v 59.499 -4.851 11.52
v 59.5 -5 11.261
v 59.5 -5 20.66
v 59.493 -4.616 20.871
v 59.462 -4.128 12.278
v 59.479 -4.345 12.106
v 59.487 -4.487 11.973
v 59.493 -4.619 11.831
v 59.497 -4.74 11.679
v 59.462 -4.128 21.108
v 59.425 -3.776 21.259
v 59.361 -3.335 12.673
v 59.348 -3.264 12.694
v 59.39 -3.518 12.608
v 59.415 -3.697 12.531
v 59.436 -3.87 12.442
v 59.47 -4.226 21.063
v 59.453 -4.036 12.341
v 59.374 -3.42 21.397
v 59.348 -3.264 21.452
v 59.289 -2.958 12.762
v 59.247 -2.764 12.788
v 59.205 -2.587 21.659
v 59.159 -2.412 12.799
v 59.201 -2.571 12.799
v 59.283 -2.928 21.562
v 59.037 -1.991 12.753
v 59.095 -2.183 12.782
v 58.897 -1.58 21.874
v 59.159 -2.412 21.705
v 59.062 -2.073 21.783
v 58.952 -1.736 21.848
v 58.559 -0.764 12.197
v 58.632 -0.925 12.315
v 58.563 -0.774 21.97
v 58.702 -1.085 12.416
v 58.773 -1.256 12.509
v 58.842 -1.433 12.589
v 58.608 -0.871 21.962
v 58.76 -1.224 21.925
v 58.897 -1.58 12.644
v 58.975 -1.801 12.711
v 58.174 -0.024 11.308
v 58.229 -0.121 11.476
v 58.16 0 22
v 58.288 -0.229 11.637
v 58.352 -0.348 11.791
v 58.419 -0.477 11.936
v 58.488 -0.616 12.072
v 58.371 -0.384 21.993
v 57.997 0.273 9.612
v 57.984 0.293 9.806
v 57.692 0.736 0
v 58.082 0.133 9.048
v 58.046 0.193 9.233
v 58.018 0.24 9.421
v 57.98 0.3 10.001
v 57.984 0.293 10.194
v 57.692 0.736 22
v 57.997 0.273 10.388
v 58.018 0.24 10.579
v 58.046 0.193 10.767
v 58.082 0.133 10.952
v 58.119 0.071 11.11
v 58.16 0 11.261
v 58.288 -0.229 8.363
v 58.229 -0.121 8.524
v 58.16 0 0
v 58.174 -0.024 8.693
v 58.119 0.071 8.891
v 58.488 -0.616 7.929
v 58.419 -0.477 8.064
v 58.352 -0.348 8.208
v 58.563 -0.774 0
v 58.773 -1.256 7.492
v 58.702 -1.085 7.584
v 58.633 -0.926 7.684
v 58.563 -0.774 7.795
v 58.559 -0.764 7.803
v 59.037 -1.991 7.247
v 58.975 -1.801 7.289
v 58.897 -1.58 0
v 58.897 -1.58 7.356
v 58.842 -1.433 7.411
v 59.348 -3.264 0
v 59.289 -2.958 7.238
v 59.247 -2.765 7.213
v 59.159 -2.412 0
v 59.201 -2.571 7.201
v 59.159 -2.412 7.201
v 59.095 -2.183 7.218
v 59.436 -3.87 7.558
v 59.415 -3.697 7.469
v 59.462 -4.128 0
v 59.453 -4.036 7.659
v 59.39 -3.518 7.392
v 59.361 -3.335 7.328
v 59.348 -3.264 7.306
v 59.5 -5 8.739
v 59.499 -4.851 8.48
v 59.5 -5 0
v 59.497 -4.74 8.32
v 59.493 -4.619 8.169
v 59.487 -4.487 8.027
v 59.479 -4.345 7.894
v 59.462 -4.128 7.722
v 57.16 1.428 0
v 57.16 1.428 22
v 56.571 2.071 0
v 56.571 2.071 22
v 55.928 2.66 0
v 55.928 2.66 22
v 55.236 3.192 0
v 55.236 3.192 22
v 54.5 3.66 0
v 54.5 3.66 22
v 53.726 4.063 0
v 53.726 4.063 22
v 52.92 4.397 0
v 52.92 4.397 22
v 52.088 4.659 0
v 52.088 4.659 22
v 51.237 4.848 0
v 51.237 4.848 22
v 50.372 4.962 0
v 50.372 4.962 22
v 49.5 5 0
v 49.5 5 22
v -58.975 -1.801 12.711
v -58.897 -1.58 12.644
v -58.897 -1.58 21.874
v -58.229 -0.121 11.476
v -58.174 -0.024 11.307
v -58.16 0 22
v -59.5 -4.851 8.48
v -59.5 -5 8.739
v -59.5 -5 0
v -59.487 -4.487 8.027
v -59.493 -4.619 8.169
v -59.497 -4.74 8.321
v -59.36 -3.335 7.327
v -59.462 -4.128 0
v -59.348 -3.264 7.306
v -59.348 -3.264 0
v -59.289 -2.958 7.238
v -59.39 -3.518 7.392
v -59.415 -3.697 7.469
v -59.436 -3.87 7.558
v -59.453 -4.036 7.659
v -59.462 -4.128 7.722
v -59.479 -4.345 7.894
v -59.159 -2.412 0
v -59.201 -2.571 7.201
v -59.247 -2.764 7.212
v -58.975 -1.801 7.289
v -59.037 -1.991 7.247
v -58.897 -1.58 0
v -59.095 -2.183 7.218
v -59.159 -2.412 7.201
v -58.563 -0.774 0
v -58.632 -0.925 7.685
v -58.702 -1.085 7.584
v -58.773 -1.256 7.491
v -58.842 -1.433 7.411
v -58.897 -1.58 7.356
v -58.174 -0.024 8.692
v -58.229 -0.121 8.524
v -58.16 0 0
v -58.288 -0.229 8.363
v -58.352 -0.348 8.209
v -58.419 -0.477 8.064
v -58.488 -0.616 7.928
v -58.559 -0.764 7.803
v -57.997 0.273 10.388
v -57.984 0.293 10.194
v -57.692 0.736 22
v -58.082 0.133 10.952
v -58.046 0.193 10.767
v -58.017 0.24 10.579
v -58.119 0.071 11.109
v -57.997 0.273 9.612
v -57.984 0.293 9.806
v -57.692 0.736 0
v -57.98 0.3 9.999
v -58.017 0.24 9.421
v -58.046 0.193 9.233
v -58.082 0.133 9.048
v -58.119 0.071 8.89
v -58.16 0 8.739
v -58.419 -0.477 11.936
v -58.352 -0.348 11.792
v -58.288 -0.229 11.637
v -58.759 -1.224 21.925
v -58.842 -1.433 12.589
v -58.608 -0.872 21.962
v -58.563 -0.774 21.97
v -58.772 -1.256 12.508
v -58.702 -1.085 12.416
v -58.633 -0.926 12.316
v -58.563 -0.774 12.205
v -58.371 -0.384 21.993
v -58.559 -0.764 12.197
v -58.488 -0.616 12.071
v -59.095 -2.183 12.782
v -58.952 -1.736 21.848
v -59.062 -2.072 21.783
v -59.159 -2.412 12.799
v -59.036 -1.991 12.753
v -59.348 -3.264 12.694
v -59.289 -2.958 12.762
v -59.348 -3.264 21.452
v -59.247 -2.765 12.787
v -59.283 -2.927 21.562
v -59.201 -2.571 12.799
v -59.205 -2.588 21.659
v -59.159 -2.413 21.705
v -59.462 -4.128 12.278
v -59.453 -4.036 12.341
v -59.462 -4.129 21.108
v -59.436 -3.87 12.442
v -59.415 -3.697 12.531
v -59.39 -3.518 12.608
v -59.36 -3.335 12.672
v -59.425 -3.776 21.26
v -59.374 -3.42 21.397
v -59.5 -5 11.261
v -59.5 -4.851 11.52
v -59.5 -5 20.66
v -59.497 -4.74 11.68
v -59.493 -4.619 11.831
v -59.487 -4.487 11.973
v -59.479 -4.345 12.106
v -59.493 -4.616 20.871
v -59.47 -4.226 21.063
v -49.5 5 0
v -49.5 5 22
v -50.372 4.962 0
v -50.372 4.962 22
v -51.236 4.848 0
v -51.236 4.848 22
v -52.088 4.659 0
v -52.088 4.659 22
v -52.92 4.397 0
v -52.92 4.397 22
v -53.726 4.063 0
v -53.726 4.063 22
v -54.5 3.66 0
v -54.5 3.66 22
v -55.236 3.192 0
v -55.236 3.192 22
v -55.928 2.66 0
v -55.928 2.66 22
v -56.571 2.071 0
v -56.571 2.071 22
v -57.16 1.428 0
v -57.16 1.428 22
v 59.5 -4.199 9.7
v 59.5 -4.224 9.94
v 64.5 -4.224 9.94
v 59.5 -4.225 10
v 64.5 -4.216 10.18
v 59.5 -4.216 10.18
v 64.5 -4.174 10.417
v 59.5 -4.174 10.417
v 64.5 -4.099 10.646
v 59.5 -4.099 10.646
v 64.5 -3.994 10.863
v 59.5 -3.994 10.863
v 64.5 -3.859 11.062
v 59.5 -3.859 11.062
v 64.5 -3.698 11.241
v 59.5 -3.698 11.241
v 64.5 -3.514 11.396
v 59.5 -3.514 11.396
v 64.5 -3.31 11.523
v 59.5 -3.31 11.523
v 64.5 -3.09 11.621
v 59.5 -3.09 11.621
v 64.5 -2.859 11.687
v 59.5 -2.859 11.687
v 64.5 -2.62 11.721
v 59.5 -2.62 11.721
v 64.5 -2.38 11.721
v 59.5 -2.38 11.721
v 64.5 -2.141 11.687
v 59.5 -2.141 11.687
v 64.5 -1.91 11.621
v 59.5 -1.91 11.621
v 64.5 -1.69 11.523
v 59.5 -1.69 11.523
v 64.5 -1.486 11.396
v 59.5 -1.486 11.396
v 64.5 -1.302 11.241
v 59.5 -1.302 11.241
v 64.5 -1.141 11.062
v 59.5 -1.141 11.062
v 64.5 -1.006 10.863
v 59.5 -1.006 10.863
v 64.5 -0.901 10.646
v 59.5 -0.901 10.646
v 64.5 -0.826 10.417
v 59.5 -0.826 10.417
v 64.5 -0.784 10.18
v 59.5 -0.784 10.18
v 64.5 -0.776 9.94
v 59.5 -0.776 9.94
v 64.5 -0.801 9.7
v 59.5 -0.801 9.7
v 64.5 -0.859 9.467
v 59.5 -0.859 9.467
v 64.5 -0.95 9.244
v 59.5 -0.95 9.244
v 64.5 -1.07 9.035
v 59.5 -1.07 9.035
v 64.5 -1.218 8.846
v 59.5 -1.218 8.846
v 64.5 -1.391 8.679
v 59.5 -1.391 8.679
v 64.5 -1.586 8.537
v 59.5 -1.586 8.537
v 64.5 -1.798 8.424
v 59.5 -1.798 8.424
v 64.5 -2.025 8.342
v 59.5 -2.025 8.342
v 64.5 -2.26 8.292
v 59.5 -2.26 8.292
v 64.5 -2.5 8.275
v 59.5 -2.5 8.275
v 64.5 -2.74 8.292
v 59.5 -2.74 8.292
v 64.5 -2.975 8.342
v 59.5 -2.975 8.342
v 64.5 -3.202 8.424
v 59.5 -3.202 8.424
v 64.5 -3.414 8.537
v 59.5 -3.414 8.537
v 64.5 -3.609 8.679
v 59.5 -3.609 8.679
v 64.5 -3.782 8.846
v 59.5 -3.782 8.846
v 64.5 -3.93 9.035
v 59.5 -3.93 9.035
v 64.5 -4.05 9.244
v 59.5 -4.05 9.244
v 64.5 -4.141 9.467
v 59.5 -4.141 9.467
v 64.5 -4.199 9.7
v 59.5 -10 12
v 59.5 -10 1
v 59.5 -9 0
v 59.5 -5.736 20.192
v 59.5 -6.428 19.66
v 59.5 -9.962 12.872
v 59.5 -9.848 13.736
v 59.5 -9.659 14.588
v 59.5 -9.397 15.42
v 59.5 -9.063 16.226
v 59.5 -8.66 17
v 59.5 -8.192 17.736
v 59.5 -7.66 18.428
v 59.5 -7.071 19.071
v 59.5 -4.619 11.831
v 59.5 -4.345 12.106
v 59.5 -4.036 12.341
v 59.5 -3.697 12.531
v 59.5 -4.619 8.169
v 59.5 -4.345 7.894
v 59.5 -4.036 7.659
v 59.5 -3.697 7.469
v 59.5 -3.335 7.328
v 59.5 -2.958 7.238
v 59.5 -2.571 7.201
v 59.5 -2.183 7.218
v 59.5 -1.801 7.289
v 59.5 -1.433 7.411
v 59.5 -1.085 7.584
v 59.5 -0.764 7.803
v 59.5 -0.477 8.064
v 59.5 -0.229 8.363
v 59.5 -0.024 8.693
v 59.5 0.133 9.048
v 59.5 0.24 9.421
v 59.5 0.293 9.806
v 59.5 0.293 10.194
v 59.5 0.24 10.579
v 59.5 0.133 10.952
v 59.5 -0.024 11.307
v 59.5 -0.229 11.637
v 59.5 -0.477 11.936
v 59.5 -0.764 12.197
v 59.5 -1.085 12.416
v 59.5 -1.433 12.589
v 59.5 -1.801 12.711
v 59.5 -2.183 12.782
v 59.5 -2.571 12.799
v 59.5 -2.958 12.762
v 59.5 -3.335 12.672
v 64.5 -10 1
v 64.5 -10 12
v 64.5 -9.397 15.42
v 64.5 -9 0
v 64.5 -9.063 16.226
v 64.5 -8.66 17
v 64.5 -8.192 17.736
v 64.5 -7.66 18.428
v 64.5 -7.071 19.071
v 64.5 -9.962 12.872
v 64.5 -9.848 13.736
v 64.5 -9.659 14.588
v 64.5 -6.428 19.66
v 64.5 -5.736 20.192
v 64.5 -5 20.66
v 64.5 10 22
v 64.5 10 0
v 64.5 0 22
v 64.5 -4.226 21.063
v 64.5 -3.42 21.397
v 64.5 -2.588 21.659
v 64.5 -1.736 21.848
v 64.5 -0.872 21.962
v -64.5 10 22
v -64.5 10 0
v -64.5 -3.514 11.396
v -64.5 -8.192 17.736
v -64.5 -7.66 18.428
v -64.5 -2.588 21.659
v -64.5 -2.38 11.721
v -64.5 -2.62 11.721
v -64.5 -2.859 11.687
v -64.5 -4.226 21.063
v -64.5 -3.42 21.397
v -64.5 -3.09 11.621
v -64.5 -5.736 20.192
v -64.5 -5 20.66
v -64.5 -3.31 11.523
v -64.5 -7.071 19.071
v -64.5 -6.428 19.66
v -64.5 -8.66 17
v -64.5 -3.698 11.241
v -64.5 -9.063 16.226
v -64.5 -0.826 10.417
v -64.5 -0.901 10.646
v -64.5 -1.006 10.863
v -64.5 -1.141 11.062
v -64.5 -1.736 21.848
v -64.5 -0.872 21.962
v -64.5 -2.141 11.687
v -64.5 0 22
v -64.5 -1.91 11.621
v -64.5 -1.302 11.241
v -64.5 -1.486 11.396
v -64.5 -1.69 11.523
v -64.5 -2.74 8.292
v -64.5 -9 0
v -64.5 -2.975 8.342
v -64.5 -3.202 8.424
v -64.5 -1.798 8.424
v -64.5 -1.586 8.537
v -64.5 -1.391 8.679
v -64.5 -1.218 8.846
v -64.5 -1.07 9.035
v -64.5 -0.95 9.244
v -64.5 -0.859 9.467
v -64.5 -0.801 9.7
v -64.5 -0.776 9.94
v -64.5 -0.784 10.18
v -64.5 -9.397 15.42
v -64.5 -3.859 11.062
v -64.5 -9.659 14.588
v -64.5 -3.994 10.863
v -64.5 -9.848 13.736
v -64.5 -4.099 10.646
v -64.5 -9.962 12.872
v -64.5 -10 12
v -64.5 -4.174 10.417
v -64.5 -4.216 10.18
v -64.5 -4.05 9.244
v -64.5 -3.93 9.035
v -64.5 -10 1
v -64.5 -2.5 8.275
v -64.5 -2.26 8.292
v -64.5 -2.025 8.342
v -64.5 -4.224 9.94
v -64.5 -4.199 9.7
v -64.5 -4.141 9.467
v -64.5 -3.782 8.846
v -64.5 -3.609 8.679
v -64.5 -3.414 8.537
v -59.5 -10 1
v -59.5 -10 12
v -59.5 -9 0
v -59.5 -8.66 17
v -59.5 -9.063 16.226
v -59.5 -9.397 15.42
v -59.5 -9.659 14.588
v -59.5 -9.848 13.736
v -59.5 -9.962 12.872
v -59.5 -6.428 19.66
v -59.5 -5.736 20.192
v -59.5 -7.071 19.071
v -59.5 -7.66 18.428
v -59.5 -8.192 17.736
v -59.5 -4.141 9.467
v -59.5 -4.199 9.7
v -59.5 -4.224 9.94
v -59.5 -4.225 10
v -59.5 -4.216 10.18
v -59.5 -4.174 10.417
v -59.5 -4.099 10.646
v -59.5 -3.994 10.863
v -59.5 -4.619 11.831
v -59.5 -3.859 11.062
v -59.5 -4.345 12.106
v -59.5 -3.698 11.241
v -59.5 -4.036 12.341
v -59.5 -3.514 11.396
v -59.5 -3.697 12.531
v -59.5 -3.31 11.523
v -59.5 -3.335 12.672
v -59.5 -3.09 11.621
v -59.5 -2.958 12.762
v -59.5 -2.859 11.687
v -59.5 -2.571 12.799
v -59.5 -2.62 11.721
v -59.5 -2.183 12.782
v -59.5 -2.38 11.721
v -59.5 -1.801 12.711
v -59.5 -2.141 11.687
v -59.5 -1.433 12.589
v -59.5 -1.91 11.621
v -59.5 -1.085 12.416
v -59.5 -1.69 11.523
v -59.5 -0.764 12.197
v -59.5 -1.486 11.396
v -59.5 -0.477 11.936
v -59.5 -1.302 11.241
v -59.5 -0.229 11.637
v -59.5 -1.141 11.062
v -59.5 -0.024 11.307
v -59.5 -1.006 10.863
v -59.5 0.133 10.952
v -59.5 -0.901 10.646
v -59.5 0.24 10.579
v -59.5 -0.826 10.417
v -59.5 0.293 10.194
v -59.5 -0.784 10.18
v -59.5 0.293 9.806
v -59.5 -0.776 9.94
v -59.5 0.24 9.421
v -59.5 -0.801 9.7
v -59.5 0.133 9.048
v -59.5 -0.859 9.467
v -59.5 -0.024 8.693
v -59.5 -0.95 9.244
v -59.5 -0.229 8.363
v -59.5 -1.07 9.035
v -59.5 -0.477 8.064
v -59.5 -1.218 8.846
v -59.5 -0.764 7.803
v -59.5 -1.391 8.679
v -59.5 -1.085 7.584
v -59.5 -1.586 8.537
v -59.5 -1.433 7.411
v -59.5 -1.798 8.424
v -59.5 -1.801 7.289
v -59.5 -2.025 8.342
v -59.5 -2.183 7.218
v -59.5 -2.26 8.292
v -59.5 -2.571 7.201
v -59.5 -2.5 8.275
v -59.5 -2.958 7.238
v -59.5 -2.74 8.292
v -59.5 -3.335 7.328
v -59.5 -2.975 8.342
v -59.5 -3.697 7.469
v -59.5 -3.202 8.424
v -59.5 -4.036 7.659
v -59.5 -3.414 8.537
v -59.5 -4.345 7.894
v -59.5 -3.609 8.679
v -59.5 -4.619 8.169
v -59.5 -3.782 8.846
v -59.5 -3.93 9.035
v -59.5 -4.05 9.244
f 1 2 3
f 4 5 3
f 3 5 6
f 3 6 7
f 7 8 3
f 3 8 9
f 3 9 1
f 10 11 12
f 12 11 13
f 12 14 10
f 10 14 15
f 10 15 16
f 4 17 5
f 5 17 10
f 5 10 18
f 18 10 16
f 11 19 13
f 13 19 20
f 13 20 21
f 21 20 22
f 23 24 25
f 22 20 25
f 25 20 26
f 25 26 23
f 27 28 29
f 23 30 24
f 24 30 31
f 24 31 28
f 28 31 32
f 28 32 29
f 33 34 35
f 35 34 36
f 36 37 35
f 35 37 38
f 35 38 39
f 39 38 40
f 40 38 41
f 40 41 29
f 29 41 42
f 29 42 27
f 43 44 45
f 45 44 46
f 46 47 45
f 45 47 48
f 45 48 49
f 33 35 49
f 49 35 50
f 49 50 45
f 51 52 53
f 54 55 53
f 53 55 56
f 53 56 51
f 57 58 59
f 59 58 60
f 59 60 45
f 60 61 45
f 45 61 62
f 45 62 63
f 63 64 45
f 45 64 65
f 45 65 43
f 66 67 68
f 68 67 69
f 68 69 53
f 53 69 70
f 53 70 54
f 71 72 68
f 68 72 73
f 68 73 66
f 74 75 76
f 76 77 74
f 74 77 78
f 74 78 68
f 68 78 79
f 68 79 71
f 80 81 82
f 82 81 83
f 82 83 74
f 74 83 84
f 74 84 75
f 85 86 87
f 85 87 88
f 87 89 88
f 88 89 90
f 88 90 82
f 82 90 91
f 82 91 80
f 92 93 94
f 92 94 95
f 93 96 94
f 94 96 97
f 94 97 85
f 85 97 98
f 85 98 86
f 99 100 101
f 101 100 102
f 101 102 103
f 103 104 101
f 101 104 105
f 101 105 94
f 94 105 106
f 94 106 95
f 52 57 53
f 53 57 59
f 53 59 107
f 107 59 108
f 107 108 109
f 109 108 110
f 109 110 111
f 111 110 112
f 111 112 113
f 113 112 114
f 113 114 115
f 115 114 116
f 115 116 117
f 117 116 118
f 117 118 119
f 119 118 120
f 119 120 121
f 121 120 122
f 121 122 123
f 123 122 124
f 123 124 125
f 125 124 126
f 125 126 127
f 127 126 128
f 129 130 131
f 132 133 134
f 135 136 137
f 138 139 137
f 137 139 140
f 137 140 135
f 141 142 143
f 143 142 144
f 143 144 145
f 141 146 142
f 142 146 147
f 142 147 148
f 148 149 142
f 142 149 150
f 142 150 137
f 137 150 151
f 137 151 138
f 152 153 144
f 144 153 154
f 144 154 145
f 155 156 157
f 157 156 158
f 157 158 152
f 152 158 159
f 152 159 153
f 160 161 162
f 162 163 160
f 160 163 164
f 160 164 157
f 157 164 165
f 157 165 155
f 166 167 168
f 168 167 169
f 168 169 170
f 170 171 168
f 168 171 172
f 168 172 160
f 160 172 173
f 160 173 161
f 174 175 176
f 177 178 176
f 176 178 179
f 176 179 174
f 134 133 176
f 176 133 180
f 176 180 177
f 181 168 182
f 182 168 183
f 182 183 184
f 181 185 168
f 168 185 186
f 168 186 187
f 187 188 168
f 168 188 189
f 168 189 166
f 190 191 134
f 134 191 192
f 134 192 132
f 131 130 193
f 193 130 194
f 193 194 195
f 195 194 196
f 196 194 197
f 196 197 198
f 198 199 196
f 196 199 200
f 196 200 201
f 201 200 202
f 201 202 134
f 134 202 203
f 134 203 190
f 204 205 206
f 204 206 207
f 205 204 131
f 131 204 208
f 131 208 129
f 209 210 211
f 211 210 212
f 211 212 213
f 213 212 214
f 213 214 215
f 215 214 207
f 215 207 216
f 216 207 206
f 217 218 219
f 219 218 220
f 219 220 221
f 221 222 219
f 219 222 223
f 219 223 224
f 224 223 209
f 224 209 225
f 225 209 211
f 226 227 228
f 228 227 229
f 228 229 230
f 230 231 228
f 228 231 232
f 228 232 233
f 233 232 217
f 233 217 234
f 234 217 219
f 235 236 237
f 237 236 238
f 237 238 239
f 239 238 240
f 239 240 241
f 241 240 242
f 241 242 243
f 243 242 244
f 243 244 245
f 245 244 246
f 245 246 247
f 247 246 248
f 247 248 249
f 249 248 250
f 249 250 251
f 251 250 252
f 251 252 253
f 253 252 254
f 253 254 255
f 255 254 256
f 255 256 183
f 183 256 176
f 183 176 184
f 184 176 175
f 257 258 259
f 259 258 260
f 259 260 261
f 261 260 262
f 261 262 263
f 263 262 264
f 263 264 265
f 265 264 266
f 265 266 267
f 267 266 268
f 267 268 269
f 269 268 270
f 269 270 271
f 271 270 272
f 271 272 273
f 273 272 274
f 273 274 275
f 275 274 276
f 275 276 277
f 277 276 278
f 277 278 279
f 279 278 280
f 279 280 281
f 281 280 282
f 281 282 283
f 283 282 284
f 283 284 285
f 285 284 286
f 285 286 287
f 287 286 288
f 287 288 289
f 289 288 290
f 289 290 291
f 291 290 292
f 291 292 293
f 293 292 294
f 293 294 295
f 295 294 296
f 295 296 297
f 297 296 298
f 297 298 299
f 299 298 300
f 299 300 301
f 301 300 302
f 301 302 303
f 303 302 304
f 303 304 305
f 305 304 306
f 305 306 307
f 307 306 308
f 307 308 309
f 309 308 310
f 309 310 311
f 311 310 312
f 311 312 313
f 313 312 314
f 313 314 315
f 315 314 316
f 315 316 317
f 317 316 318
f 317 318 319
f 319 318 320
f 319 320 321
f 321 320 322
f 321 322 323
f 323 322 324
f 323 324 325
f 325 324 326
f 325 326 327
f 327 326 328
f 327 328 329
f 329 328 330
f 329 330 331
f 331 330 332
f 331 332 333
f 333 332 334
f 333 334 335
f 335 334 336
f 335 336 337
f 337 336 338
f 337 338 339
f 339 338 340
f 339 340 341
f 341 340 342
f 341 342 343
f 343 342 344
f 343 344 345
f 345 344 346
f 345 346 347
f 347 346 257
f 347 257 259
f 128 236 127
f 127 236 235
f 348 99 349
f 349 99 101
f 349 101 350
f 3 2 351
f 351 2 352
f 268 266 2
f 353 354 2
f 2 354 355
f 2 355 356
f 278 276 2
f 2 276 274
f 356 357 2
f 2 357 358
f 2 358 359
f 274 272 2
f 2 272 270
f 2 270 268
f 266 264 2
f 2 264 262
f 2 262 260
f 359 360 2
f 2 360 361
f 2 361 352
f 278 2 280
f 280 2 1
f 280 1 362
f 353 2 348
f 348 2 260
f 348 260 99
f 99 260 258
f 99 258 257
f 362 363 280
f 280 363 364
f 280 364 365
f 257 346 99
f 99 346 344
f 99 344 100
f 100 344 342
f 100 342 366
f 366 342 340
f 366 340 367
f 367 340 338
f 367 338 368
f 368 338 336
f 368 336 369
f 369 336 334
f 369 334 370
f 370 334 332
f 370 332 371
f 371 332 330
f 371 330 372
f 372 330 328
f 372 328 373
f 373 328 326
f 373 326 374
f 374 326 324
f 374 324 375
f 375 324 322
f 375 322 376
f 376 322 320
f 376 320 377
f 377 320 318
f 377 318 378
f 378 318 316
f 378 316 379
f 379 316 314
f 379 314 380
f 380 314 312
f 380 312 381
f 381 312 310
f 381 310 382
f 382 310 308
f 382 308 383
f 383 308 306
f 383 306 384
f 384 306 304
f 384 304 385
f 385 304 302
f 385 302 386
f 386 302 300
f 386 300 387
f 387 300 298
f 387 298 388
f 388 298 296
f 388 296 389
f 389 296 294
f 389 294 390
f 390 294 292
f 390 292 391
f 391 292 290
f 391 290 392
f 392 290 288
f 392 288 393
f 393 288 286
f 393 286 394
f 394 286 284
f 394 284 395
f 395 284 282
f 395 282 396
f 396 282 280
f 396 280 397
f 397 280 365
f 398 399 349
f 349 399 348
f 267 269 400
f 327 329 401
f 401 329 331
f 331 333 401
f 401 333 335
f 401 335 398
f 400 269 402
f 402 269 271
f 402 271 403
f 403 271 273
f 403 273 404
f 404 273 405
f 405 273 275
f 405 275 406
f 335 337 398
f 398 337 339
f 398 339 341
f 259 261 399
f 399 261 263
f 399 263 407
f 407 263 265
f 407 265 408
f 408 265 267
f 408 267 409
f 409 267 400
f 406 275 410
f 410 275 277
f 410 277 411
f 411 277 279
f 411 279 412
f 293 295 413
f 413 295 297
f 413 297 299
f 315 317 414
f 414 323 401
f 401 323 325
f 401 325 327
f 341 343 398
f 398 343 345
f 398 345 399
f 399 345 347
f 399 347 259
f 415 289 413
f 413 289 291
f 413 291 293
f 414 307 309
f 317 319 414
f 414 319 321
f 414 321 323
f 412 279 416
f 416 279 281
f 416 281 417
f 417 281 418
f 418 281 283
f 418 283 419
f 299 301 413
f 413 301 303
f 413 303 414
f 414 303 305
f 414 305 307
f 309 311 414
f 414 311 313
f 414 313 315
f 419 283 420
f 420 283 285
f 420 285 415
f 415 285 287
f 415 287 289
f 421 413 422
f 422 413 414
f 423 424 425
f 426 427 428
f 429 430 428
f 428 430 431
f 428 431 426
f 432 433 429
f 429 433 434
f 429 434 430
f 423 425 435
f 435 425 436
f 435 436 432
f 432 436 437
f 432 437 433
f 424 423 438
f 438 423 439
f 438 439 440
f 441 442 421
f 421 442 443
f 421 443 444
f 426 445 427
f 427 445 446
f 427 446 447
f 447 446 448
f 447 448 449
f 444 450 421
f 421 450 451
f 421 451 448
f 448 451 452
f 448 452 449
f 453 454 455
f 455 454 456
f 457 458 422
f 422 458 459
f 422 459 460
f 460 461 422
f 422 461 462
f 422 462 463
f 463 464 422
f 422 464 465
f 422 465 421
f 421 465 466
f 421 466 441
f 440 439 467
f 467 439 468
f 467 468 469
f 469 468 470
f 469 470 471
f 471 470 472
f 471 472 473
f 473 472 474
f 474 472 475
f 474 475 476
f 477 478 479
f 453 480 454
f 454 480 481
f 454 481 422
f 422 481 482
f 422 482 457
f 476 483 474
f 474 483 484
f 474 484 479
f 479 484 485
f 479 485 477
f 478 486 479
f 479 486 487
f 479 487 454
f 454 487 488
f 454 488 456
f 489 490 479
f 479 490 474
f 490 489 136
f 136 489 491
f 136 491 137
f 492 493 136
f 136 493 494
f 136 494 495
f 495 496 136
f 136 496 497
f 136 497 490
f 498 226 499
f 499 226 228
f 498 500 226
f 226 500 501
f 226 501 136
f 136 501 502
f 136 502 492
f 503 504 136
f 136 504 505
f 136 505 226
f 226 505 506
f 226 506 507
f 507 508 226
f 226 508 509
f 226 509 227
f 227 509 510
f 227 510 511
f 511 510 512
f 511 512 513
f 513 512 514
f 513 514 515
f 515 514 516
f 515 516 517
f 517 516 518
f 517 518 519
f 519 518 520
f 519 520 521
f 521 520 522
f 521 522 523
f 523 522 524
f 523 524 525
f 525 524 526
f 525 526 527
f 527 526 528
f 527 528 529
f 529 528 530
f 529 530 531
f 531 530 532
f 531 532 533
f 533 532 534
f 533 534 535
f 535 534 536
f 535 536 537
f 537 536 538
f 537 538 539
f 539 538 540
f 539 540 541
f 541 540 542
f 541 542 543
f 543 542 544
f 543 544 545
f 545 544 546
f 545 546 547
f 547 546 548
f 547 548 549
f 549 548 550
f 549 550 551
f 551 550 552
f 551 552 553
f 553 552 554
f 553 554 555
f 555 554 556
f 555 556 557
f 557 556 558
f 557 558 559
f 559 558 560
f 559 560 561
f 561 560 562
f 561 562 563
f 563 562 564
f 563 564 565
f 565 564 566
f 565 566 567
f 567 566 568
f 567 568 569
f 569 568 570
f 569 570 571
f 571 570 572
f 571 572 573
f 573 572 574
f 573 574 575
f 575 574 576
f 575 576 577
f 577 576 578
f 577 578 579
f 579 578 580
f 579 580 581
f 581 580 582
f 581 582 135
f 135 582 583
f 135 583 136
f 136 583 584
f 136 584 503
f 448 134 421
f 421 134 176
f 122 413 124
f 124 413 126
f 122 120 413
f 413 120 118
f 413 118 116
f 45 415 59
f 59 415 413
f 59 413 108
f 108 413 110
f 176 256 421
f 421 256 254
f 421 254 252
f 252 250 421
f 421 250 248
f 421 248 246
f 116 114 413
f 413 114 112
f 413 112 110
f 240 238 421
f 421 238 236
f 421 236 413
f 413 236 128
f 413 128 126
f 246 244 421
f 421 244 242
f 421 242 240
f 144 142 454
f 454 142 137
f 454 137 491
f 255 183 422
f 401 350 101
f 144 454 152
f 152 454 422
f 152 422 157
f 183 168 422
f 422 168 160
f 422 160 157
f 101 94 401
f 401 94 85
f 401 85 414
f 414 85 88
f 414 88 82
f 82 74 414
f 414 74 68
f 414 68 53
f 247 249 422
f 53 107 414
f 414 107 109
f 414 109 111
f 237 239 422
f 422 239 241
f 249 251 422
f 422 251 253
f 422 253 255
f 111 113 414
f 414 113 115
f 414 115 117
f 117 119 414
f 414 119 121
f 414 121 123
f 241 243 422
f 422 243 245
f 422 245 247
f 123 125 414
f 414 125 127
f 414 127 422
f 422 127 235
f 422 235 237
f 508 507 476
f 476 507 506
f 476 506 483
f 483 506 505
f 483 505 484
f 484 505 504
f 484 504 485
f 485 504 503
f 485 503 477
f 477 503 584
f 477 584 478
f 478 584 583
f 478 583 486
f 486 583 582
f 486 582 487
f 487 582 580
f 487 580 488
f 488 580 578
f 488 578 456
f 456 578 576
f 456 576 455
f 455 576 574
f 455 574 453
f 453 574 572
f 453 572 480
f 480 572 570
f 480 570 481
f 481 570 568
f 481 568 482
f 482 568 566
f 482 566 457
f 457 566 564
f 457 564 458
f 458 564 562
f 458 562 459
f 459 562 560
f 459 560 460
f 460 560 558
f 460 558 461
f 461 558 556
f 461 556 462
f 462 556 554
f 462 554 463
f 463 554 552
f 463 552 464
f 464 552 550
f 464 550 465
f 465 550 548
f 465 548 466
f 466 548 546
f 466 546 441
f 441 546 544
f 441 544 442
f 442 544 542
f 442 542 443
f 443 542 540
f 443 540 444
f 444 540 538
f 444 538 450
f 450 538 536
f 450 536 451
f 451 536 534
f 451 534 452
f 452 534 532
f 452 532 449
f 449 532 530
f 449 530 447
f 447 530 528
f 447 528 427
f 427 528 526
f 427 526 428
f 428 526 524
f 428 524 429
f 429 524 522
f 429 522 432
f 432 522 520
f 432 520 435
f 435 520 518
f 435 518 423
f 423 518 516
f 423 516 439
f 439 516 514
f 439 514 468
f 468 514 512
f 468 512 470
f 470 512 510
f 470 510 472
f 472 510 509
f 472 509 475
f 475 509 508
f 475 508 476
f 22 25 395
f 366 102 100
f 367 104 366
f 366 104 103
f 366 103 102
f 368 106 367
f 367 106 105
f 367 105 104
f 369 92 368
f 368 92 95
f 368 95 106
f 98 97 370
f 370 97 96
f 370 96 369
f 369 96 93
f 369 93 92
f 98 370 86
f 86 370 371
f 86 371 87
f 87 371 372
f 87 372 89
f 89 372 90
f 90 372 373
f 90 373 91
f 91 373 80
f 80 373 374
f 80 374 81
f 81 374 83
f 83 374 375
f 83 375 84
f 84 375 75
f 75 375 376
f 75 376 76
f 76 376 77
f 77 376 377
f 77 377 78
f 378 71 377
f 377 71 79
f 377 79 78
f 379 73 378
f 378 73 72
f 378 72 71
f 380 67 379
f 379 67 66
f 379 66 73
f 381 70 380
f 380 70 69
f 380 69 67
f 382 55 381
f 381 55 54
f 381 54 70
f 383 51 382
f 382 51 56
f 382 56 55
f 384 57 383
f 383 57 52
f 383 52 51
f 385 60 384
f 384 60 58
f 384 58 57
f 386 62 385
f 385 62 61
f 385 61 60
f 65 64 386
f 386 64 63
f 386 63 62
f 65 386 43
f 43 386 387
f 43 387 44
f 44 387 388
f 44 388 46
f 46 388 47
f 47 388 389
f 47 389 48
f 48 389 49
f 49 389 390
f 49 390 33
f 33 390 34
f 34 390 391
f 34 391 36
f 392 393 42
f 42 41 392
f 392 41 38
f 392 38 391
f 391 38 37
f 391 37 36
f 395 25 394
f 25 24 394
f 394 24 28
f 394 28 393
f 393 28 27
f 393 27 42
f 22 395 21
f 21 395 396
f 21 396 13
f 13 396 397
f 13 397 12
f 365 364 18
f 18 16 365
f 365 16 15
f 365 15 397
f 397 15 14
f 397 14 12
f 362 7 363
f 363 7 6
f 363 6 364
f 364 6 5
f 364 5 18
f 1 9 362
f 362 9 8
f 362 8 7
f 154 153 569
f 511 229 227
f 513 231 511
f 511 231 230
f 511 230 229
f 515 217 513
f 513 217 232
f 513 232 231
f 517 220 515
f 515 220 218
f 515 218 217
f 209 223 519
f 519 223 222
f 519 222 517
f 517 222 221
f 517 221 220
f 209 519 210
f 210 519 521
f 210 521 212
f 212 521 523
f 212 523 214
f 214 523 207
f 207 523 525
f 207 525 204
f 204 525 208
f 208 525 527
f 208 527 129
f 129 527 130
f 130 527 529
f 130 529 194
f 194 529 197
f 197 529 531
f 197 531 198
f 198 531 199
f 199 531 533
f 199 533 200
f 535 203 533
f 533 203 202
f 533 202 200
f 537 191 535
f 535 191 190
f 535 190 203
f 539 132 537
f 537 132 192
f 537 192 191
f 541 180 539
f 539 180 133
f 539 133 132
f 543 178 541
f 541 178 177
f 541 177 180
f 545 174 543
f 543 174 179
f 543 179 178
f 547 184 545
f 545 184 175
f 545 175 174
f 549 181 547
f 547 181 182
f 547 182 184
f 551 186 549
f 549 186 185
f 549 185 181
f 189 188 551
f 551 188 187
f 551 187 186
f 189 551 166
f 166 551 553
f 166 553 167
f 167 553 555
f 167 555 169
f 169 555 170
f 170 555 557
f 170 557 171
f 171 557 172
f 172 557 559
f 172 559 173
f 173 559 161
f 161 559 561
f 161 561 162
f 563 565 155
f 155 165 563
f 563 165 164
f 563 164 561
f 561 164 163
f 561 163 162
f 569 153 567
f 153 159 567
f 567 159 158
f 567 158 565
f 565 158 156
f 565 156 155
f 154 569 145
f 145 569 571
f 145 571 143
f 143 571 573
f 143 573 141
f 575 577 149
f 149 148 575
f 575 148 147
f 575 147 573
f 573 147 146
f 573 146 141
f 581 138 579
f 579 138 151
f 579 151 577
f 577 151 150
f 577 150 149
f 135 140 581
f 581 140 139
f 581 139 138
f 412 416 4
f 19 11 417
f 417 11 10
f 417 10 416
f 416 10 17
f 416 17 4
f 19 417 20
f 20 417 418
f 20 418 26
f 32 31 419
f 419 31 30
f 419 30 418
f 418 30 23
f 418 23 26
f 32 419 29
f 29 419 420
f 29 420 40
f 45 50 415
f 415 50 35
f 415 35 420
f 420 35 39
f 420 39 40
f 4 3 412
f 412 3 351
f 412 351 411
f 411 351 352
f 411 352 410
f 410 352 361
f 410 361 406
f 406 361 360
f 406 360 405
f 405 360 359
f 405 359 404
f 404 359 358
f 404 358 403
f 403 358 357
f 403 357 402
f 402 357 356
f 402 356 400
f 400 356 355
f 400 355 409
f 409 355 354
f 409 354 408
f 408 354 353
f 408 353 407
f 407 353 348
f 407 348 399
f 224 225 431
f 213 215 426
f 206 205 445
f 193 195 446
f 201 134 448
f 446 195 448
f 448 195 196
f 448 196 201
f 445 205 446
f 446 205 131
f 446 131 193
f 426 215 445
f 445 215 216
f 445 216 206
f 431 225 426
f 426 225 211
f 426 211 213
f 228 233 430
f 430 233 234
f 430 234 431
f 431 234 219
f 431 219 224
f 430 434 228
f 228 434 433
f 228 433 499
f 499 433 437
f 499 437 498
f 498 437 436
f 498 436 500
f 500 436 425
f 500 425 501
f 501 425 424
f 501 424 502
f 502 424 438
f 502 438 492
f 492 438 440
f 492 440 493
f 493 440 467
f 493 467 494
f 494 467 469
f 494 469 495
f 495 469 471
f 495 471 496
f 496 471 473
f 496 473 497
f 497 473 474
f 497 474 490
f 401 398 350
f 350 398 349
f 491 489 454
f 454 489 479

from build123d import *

# Parameters (mm, degrees)
BOSS_EXTRUDE1_DEPTH = 22
FILLET1_R           = 10
SKETCH2_R           = 1.725
CUT_EXTRUDE1_DEPTH  = 132.244047484
SKETCH3_R           = 2.8
CUT_EXTRUDE2_DEPTH  = 119
FILLET2_R           = 10
CHAMFER1_SIZE       = 1


with BuildPart() as part:
    # Sketch1 → Boss-Extrude1 (new body)
    with BuildSketch(Plane.XY):
        Polygon((-64.5, 10), (64.5, 10), (64.5, -10), (59.5, -10), (59.5, 5), (-59.5, 5), (-59.5, -10), (-64.5, -10), align=None)
    extrude(amount=BOSS_EXTRUDE1_DEPTH)

    # Fillet1
    fillet1_edges = [part.edges().sort_by_distance(p)[0] for p in [
        (-59.5, 5, 11),
        (59.5, 5, 11),
    ]]
    fillet(fillet1_edges, radius=FILLET1_R)

    # Sketch2 → Cut-Extrude1 (cut, through all)
    with BuildSketch(Plane(origin=(64.5, 0, 0), x_dir=(0, 0, -1), z_dir=(1, 0, 0))):
        with Locations((-10, -2.5)):
            Circle(SKETCH2_R)
    extrude(amount=-CUT_EXTRUDE1_DEPTH, mode=Mode.SUBTRACT)

    # Sketch3 → Cut-Extrude2 (cut)
    with BuildSketch(Plane.ZY.offset(-59.5)):
        with Locations((10, -2.5)):
            Circle(SKETCH3_R)
    extrude(amount=CUT_EXTRUDE2_DEPTH, mode=Mode.SUBTRACT)

    # Fillet2
    # the kernel refuses this fillet: 10 mm, written as the material it takes off along each edge
    with BuildSketch(Plane(origin=(89.5, -10, 22), x_dir=(0, 1, 0), z_dir=(-1, 0, 0))) as fillet2_piece_1:
        with BuildLine():
            CenterArc((FILLET2_R, FILLET2_R), FILLET2_R, 180, 90)
            Line((0, FILLET2_R), (0, 0))
            Line((0, 0), (FILLET2_R, 0))
        make_face()
    extrude(amount=55, mode=Mode.SUBTRACT)
    with BuildSketch(Plane(origin=(-34.5, -10, 22), x_dir=(0, 0, -1), z_dir=(-1, 0, 0))) as fillet2_piece_2:
        with BuildLine():
            CenterArc((FILLET2_R, -FILLET2_R), FILLET2_R, 90, 90)
            Line((0, -FILLET2_R), (0, 0))
            Line((0, 0), (FILLET2_R, 0))
        make_face()
    extrude(amount=55, mode=Mode.SUBTRACT)

    # Chamfer1
    chamfer1_edges = [part.edges().sort_by_distance(p)[0] for p in [
        (62, -10, 0),
        (-62, -10, 0),
    ]]
    chamfer(chamfer1_edges, length=CHAMFER1_SIZE)


solid = part.part
